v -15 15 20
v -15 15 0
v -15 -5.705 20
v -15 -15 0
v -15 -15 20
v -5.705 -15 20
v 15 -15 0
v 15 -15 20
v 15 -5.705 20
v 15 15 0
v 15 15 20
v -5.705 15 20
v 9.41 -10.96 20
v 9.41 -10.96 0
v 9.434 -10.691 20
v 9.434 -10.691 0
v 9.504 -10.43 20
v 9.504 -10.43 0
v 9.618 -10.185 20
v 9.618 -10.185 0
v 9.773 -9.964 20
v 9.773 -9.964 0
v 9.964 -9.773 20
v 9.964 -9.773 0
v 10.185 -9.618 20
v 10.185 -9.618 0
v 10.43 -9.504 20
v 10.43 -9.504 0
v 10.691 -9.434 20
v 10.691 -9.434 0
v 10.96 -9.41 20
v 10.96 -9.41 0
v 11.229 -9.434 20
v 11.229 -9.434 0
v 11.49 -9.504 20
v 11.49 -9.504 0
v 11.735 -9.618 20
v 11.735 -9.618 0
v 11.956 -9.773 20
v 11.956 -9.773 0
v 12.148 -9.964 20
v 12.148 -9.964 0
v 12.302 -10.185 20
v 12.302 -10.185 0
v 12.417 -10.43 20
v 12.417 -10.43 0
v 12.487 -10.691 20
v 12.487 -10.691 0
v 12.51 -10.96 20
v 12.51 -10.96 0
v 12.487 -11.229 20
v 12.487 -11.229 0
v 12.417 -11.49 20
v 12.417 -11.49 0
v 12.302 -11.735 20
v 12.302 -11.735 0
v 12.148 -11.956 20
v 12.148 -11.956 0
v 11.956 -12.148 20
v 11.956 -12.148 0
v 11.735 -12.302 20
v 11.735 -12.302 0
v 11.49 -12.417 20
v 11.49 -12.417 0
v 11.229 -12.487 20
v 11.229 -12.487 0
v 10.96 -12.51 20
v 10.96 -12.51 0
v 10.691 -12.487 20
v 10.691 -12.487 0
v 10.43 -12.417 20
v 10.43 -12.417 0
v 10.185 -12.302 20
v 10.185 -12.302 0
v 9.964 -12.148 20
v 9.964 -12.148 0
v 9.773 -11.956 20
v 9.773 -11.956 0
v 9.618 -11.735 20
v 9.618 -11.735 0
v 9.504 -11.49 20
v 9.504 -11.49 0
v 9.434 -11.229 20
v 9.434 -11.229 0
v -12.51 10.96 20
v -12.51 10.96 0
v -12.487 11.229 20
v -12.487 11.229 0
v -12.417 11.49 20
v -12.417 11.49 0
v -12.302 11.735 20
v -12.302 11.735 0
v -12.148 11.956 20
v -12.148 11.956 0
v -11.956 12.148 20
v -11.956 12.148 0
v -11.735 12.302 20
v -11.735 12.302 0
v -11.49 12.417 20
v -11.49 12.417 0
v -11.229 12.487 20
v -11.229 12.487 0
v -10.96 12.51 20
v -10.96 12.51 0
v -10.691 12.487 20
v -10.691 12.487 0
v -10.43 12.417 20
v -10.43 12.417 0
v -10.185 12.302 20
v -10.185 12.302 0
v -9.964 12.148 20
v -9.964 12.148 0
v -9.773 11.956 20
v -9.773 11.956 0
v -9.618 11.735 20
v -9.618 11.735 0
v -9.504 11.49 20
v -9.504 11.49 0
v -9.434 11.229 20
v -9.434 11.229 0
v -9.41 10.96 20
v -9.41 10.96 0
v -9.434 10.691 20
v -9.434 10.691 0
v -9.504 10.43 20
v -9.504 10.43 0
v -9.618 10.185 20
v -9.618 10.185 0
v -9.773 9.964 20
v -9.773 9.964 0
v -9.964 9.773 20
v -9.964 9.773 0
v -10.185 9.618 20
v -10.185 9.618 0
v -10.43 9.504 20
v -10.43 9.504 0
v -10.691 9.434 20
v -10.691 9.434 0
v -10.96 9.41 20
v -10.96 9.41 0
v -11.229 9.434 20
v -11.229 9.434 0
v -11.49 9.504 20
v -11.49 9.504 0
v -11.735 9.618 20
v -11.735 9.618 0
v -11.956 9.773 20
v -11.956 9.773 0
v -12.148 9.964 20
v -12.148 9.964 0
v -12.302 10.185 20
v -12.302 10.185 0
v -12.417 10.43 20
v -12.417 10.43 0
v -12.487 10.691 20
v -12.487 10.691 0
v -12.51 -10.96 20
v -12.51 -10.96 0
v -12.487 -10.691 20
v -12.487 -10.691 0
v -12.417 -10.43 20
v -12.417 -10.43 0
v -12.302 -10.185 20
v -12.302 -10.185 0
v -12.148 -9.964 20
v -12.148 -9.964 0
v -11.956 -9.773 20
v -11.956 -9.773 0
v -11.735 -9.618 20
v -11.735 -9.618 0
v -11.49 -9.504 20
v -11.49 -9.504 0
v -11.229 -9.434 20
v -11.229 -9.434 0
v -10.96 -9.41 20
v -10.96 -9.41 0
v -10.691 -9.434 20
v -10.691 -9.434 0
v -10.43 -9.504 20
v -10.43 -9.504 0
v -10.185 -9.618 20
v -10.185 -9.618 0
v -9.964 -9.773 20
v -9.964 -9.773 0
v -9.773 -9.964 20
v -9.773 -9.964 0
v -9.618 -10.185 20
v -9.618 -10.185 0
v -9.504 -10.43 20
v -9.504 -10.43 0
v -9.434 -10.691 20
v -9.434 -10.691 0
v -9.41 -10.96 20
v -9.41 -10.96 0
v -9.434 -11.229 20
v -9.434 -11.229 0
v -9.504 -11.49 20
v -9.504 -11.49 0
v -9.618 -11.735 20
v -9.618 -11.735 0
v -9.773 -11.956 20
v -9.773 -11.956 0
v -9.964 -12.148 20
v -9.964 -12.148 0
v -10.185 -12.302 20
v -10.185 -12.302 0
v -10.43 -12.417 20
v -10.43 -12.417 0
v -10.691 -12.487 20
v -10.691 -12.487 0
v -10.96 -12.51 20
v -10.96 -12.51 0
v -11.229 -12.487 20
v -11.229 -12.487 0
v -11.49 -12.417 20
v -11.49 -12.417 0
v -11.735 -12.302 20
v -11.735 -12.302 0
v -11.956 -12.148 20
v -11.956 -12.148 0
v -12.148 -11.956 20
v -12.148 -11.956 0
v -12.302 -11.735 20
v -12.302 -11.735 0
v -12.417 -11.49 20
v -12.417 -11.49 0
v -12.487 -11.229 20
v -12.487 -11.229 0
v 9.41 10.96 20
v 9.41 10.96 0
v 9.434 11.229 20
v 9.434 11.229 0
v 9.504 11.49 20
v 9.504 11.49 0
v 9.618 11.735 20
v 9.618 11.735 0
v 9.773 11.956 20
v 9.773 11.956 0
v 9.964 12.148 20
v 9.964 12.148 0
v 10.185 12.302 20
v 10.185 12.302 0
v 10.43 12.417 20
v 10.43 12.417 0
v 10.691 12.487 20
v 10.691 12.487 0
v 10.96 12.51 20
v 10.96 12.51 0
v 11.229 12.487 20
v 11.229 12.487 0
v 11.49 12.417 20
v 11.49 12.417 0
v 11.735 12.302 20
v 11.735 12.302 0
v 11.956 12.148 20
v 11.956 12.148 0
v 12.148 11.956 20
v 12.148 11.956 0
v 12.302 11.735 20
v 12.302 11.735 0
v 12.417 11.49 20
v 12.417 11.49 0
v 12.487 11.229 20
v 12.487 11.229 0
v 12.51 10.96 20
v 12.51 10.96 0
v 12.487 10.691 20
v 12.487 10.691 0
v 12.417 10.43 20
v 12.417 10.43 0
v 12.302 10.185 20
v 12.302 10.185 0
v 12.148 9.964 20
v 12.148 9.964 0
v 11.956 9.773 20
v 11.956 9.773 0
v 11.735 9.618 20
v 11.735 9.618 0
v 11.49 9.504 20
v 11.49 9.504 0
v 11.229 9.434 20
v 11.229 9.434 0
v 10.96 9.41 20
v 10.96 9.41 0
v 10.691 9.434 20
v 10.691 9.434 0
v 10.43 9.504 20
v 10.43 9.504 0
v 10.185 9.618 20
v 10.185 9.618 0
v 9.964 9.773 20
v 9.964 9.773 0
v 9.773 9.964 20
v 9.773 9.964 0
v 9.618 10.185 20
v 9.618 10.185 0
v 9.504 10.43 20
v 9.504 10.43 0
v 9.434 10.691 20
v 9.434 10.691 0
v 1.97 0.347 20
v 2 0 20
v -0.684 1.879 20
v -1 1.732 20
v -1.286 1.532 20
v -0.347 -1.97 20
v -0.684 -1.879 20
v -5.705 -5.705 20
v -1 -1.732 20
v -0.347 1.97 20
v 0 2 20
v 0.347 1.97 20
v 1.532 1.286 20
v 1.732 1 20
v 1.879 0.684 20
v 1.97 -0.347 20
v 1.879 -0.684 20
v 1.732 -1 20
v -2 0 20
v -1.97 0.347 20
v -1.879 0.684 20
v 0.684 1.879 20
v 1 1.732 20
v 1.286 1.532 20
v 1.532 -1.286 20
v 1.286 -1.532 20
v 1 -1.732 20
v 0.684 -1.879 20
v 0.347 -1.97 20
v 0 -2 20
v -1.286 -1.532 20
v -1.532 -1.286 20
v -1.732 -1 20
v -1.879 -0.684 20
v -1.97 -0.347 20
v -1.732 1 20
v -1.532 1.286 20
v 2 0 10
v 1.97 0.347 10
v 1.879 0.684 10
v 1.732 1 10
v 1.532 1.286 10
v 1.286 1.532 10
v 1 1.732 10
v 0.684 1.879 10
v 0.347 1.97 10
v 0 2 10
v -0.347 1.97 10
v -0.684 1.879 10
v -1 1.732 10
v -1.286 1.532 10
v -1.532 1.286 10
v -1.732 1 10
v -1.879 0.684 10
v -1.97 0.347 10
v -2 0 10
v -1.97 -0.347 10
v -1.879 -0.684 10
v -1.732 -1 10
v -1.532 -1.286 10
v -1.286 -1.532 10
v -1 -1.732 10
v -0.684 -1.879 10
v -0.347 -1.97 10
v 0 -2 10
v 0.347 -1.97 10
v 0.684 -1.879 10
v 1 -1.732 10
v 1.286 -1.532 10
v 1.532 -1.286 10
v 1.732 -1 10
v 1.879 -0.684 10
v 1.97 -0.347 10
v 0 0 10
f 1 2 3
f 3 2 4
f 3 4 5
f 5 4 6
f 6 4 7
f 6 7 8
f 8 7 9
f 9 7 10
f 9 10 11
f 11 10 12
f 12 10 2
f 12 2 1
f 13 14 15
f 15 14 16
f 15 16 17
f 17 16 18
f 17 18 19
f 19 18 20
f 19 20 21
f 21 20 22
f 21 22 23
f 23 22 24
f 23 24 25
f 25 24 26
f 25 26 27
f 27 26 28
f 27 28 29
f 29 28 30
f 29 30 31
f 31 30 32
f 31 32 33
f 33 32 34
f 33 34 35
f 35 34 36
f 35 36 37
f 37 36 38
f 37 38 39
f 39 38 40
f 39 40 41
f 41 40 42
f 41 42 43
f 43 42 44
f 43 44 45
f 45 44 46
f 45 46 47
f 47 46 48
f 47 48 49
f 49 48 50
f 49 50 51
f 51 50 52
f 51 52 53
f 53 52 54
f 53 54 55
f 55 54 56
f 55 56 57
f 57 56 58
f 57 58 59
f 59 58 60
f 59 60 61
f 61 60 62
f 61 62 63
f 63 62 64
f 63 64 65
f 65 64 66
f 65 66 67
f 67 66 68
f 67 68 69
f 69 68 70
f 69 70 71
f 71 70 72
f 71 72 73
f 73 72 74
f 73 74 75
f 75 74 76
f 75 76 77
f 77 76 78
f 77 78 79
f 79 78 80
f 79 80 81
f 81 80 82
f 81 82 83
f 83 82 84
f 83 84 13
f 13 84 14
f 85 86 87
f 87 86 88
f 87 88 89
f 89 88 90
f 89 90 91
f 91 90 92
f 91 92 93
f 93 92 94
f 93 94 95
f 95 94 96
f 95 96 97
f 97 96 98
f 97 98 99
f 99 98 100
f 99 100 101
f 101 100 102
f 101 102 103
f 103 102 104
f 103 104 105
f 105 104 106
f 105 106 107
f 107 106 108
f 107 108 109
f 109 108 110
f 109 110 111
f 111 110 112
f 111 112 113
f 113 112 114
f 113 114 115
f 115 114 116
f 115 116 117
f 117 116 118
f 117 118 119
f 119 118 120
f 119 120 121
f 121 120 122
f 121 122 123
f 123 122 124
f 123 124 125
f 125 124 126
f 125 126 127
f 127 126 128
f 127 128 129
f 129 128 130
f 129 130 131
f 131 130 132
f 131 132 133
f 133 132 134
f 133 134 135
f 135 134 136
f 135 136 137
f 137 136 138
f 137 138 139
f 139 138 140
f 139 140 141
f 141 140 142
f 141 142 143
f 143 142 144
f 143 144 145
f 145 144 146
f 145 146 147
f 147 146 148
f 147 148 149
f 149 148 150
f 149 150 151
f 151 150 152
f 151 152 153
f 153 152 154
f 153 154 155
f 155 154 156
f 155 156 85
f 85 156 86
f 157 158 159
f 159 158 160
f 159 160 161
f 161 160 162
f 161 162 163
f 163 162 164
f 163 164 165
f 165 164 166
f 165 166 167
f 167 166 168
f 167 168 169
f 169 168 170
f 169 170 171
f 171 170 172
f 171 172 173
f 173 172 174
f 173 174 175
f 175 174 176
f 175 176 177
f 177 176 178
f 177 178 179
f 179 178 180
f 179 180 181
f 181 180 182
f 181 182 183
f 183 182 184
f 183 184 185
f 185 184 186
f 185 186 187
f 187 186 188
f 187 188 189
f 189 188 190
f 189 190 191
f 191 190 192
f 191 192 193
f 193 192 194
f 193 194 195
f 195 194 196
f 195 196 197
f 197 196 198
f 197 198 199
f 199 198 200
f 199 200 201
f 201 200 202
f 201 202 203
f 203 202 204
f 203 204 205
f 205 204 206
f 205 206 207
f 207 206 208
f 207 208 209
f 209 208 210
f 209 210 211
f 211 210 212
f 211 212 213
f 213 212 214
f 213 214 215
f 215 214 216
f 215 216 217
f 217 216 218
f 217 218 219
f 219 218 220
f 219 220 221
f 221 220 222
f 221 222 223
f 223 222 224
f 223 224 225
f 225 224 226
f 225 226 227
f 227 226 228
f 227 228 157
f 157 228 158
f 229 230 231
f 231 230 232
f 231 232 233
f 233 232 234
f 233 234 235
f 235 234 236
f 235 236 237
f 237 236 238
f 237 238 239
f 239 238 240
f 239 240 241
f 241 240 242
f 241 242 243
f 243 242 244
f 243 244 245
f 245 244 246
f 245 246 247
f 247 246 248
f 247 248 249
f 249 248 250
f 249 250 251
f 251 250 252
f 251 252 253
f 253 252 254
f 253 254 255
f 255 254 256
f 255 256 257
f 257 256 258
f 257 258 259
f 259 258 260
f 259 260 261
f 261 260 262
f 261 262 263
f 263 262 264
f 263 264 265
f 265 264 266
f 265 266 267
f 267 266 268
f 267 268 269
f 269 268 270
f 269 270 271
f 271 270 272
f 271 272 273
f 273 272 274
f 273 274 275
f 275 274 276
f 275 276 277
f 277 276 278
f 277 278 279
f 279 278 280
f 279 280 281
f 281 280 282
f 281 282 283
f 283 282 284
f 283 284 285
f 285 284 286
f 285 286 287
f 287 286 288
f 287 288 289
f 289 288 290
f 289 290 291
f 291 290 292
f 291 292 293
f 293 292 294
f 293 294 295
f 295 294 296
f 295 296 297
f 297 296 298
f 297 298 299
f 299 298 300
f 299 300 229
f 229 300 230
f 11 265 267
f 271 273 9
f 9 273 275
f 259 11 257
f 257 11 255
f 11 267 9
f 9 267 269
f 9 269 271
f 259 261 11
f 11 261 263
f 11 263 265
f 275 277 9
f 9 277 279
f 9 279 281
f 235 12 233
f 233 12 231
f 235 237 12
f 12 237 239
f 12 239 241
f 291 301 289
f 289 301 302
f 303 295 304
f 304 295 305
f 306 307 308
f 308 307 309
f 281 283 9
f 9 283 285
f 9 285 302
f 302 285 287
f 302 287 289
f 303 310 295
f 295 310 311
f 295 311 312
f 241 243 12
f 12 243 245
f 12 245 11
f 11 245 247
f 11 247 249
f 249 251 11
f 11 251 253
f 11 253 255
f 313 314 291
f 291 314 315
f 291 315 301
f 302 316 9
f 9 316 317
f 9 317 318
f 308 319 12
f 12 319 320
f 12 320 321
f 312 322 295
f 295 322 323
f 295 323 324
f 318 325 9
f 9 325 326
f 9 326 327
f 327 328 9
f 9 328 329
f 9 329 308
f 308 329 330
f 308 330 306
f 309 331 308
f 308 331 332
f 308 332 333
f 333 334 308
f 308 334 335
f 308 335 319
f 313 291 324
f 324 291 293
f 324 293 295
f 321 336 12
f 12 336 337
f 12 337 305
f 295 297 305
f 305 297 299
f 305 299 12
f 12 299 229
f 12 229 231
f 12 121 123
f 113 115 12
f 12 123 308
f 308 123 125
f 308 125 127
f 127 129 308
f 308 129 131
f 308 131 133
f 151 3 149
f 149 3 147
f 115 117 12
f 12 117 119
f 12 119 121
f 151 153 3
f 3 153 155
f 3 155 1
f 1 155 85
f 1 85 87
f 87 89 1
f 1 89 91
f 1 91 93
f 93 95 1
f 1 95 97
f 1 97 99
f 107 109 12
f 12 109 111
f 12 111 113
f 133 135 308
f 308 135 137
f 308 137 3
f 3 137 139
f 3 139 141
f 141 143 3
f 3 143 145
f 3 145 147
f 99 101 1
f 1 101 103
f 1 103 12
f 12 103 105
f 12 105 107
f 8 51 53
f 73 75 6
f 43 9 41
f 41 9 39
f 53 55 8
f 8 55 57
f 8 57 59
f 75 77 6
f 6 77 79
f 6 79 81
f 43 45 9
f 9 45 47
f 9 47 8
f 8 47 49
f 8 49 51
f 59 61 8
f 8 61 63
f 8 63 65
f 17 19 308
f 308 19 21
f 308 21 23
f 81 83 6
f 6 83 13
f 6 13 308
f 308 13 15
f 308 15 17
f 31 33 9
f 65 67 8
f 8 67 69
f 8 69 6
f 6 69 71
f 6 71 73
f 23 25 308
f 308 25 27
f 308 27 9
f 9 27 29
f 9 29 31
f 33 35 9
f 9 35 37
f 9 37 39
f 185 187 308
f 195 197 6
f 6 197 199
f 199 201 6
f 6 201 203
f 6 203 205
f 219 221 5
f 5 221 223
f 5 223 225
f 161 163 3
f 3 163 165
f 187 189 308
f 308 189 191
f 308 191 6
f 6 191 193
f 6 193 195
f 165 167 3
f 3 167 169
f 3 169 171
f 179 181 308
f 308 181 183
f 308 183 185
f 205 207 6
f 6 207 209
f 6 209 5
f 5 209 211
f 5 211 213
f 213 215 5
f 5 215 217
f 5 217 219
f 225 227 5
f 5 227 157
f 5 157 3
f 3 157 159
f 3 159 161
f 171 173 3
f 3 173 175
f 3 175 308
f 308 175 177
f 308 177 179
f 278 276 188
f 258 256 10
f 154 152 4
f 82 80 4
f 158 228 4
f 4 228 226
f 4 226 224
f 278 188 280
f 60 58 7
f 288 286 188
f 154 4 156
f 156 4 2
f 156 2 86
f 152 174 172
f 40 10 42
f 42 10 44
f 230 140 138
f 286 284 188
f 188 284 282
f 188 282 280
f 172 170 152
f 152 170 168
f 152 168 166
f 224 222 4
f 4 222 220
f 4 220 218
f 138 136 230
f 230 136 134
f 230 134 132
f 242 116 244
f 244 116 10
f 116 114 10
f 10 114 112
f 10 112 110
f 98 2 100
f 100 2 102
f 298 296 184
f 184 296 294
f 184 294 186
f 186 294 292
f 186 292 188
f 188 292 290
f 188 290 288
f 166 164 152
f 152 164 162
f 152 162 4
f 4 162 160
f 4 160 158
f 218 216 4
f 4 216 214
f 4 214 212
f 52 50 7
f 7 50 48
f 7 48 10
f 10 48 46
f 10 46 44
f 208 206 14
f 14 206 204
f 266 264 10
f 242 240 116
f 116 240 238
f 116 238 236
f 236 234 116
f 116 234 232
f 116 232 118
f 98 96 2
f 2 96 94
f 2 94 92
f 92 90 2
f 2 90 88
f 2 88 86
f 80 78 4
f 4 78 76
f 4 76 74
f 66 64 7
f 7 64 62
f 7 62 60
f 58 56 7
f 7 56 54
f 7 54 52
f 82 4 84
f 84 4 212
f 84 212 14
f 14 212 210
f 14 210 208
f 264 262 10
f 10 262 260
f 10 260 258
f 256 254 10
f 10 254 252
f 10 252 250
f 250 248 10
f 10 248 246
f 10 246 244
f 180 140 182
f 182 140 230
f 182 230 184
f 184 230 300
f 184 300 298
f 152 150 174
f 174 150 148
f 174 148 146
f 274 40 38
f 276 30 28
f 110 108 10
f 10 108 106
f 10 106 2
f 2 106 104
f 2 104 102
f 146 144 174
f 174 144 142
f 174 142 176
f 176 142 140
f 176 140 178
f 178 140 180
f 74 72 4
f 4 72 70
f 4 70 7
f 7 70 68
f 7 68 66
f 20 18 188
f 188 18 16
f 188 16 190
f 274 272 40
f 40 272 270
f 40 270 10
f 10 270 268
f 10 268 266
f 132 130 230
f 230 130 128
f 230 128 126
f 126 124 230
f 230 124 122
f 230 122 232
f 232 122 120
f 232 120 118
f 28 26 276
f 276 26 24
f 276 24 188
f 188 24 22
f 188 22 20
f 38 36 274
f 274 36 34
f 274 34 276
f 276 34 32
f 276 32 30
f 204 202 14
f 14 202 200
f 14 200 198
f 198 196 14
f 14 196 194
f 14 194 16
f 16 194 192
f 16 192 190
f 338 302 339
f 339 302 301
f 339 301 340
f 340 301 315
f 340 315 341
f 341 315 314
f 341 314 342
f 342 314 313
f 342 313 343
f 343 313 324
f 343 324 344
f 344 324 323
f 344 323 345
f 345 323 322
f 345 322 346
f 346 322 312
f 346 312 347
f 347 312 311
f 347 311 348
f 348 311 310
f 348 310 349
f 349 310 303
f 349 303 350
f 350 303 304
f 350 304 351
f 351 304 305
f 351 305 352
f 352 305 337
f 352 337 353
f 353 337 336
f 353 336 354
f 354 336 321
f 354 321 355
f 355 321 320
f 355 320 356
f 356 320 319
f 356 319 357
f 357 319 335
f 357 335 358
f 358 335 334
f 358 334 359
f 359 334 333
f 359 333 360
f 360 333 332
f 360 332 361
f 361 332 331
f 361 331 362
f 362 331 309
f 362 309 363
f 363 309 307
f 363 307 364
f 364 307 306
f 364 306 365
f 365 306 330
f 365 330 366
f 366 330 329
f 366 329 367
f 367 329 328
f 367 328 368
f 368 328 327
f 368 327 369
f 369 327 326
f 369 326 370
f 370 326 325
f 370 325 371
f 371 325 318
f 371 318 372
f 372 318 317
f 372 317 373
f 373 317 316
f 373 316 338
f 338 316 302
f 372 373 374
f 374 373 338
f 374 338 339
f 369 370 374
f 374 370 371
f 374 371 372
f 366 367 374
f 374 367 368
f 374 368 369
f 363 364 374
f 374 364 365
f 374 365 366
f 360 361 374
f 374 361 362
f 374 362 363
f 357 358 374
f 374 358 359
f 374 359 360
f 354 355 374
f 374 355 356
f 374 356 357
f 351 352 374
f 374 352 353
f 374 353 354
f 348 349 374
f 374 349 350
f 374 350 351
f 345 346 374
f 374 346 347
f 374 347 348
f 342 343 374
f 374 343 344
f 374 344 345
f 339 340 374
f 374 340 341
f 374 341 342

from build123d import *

# Parameters (mm, degrees)
SKETCH1_W           = 30
SKETCH1_H           = 30
SKETCH1_R           = 1.55
BOSS_EXTRUDE1_DEPTH = 20
SKETCH3_R           = 2
CUT_EXTRUDE1_DEPTH  = 10


with BuildPart() as part:
    # Sketch1 → Boss-Extrude1 (new body)
    with BuildSketch(Plane.XY):
        Rectangle(SKETCH1_W, SKETCH1_H)
        with Locations((-10.960155108, 10.960155108)):
            Circle(SKETCH1_R, mode=Mode.SUBTRACT)
        with Locations((10.960155108, 10.960155108)):
            Circle(SKETCH1_R, mode=Mode.SUBTRACT)
        with Locations((10.960155108, -10.960155108)):
            Circle(SKETCH1_R, mode=Mode.SUBTRACT)
        with Locations((-10.960155108, -10.960155108)):
            Circle(SKETCH1_R, mode=Mode.SUBTRACT)
    extrude(amount=BOSS_EXTRUDE1_DEPTH)

    # Sketch3 → Cut-Extrude1 (cut)
    with BuildSketch(Plane.XY.offset(20)):
        Circle(SKETCH3_R)
    extrude(amount=-CUT_EXTRUDE1_DEPTH, mode=Mode.SUBTRACT)


solid = part.part
